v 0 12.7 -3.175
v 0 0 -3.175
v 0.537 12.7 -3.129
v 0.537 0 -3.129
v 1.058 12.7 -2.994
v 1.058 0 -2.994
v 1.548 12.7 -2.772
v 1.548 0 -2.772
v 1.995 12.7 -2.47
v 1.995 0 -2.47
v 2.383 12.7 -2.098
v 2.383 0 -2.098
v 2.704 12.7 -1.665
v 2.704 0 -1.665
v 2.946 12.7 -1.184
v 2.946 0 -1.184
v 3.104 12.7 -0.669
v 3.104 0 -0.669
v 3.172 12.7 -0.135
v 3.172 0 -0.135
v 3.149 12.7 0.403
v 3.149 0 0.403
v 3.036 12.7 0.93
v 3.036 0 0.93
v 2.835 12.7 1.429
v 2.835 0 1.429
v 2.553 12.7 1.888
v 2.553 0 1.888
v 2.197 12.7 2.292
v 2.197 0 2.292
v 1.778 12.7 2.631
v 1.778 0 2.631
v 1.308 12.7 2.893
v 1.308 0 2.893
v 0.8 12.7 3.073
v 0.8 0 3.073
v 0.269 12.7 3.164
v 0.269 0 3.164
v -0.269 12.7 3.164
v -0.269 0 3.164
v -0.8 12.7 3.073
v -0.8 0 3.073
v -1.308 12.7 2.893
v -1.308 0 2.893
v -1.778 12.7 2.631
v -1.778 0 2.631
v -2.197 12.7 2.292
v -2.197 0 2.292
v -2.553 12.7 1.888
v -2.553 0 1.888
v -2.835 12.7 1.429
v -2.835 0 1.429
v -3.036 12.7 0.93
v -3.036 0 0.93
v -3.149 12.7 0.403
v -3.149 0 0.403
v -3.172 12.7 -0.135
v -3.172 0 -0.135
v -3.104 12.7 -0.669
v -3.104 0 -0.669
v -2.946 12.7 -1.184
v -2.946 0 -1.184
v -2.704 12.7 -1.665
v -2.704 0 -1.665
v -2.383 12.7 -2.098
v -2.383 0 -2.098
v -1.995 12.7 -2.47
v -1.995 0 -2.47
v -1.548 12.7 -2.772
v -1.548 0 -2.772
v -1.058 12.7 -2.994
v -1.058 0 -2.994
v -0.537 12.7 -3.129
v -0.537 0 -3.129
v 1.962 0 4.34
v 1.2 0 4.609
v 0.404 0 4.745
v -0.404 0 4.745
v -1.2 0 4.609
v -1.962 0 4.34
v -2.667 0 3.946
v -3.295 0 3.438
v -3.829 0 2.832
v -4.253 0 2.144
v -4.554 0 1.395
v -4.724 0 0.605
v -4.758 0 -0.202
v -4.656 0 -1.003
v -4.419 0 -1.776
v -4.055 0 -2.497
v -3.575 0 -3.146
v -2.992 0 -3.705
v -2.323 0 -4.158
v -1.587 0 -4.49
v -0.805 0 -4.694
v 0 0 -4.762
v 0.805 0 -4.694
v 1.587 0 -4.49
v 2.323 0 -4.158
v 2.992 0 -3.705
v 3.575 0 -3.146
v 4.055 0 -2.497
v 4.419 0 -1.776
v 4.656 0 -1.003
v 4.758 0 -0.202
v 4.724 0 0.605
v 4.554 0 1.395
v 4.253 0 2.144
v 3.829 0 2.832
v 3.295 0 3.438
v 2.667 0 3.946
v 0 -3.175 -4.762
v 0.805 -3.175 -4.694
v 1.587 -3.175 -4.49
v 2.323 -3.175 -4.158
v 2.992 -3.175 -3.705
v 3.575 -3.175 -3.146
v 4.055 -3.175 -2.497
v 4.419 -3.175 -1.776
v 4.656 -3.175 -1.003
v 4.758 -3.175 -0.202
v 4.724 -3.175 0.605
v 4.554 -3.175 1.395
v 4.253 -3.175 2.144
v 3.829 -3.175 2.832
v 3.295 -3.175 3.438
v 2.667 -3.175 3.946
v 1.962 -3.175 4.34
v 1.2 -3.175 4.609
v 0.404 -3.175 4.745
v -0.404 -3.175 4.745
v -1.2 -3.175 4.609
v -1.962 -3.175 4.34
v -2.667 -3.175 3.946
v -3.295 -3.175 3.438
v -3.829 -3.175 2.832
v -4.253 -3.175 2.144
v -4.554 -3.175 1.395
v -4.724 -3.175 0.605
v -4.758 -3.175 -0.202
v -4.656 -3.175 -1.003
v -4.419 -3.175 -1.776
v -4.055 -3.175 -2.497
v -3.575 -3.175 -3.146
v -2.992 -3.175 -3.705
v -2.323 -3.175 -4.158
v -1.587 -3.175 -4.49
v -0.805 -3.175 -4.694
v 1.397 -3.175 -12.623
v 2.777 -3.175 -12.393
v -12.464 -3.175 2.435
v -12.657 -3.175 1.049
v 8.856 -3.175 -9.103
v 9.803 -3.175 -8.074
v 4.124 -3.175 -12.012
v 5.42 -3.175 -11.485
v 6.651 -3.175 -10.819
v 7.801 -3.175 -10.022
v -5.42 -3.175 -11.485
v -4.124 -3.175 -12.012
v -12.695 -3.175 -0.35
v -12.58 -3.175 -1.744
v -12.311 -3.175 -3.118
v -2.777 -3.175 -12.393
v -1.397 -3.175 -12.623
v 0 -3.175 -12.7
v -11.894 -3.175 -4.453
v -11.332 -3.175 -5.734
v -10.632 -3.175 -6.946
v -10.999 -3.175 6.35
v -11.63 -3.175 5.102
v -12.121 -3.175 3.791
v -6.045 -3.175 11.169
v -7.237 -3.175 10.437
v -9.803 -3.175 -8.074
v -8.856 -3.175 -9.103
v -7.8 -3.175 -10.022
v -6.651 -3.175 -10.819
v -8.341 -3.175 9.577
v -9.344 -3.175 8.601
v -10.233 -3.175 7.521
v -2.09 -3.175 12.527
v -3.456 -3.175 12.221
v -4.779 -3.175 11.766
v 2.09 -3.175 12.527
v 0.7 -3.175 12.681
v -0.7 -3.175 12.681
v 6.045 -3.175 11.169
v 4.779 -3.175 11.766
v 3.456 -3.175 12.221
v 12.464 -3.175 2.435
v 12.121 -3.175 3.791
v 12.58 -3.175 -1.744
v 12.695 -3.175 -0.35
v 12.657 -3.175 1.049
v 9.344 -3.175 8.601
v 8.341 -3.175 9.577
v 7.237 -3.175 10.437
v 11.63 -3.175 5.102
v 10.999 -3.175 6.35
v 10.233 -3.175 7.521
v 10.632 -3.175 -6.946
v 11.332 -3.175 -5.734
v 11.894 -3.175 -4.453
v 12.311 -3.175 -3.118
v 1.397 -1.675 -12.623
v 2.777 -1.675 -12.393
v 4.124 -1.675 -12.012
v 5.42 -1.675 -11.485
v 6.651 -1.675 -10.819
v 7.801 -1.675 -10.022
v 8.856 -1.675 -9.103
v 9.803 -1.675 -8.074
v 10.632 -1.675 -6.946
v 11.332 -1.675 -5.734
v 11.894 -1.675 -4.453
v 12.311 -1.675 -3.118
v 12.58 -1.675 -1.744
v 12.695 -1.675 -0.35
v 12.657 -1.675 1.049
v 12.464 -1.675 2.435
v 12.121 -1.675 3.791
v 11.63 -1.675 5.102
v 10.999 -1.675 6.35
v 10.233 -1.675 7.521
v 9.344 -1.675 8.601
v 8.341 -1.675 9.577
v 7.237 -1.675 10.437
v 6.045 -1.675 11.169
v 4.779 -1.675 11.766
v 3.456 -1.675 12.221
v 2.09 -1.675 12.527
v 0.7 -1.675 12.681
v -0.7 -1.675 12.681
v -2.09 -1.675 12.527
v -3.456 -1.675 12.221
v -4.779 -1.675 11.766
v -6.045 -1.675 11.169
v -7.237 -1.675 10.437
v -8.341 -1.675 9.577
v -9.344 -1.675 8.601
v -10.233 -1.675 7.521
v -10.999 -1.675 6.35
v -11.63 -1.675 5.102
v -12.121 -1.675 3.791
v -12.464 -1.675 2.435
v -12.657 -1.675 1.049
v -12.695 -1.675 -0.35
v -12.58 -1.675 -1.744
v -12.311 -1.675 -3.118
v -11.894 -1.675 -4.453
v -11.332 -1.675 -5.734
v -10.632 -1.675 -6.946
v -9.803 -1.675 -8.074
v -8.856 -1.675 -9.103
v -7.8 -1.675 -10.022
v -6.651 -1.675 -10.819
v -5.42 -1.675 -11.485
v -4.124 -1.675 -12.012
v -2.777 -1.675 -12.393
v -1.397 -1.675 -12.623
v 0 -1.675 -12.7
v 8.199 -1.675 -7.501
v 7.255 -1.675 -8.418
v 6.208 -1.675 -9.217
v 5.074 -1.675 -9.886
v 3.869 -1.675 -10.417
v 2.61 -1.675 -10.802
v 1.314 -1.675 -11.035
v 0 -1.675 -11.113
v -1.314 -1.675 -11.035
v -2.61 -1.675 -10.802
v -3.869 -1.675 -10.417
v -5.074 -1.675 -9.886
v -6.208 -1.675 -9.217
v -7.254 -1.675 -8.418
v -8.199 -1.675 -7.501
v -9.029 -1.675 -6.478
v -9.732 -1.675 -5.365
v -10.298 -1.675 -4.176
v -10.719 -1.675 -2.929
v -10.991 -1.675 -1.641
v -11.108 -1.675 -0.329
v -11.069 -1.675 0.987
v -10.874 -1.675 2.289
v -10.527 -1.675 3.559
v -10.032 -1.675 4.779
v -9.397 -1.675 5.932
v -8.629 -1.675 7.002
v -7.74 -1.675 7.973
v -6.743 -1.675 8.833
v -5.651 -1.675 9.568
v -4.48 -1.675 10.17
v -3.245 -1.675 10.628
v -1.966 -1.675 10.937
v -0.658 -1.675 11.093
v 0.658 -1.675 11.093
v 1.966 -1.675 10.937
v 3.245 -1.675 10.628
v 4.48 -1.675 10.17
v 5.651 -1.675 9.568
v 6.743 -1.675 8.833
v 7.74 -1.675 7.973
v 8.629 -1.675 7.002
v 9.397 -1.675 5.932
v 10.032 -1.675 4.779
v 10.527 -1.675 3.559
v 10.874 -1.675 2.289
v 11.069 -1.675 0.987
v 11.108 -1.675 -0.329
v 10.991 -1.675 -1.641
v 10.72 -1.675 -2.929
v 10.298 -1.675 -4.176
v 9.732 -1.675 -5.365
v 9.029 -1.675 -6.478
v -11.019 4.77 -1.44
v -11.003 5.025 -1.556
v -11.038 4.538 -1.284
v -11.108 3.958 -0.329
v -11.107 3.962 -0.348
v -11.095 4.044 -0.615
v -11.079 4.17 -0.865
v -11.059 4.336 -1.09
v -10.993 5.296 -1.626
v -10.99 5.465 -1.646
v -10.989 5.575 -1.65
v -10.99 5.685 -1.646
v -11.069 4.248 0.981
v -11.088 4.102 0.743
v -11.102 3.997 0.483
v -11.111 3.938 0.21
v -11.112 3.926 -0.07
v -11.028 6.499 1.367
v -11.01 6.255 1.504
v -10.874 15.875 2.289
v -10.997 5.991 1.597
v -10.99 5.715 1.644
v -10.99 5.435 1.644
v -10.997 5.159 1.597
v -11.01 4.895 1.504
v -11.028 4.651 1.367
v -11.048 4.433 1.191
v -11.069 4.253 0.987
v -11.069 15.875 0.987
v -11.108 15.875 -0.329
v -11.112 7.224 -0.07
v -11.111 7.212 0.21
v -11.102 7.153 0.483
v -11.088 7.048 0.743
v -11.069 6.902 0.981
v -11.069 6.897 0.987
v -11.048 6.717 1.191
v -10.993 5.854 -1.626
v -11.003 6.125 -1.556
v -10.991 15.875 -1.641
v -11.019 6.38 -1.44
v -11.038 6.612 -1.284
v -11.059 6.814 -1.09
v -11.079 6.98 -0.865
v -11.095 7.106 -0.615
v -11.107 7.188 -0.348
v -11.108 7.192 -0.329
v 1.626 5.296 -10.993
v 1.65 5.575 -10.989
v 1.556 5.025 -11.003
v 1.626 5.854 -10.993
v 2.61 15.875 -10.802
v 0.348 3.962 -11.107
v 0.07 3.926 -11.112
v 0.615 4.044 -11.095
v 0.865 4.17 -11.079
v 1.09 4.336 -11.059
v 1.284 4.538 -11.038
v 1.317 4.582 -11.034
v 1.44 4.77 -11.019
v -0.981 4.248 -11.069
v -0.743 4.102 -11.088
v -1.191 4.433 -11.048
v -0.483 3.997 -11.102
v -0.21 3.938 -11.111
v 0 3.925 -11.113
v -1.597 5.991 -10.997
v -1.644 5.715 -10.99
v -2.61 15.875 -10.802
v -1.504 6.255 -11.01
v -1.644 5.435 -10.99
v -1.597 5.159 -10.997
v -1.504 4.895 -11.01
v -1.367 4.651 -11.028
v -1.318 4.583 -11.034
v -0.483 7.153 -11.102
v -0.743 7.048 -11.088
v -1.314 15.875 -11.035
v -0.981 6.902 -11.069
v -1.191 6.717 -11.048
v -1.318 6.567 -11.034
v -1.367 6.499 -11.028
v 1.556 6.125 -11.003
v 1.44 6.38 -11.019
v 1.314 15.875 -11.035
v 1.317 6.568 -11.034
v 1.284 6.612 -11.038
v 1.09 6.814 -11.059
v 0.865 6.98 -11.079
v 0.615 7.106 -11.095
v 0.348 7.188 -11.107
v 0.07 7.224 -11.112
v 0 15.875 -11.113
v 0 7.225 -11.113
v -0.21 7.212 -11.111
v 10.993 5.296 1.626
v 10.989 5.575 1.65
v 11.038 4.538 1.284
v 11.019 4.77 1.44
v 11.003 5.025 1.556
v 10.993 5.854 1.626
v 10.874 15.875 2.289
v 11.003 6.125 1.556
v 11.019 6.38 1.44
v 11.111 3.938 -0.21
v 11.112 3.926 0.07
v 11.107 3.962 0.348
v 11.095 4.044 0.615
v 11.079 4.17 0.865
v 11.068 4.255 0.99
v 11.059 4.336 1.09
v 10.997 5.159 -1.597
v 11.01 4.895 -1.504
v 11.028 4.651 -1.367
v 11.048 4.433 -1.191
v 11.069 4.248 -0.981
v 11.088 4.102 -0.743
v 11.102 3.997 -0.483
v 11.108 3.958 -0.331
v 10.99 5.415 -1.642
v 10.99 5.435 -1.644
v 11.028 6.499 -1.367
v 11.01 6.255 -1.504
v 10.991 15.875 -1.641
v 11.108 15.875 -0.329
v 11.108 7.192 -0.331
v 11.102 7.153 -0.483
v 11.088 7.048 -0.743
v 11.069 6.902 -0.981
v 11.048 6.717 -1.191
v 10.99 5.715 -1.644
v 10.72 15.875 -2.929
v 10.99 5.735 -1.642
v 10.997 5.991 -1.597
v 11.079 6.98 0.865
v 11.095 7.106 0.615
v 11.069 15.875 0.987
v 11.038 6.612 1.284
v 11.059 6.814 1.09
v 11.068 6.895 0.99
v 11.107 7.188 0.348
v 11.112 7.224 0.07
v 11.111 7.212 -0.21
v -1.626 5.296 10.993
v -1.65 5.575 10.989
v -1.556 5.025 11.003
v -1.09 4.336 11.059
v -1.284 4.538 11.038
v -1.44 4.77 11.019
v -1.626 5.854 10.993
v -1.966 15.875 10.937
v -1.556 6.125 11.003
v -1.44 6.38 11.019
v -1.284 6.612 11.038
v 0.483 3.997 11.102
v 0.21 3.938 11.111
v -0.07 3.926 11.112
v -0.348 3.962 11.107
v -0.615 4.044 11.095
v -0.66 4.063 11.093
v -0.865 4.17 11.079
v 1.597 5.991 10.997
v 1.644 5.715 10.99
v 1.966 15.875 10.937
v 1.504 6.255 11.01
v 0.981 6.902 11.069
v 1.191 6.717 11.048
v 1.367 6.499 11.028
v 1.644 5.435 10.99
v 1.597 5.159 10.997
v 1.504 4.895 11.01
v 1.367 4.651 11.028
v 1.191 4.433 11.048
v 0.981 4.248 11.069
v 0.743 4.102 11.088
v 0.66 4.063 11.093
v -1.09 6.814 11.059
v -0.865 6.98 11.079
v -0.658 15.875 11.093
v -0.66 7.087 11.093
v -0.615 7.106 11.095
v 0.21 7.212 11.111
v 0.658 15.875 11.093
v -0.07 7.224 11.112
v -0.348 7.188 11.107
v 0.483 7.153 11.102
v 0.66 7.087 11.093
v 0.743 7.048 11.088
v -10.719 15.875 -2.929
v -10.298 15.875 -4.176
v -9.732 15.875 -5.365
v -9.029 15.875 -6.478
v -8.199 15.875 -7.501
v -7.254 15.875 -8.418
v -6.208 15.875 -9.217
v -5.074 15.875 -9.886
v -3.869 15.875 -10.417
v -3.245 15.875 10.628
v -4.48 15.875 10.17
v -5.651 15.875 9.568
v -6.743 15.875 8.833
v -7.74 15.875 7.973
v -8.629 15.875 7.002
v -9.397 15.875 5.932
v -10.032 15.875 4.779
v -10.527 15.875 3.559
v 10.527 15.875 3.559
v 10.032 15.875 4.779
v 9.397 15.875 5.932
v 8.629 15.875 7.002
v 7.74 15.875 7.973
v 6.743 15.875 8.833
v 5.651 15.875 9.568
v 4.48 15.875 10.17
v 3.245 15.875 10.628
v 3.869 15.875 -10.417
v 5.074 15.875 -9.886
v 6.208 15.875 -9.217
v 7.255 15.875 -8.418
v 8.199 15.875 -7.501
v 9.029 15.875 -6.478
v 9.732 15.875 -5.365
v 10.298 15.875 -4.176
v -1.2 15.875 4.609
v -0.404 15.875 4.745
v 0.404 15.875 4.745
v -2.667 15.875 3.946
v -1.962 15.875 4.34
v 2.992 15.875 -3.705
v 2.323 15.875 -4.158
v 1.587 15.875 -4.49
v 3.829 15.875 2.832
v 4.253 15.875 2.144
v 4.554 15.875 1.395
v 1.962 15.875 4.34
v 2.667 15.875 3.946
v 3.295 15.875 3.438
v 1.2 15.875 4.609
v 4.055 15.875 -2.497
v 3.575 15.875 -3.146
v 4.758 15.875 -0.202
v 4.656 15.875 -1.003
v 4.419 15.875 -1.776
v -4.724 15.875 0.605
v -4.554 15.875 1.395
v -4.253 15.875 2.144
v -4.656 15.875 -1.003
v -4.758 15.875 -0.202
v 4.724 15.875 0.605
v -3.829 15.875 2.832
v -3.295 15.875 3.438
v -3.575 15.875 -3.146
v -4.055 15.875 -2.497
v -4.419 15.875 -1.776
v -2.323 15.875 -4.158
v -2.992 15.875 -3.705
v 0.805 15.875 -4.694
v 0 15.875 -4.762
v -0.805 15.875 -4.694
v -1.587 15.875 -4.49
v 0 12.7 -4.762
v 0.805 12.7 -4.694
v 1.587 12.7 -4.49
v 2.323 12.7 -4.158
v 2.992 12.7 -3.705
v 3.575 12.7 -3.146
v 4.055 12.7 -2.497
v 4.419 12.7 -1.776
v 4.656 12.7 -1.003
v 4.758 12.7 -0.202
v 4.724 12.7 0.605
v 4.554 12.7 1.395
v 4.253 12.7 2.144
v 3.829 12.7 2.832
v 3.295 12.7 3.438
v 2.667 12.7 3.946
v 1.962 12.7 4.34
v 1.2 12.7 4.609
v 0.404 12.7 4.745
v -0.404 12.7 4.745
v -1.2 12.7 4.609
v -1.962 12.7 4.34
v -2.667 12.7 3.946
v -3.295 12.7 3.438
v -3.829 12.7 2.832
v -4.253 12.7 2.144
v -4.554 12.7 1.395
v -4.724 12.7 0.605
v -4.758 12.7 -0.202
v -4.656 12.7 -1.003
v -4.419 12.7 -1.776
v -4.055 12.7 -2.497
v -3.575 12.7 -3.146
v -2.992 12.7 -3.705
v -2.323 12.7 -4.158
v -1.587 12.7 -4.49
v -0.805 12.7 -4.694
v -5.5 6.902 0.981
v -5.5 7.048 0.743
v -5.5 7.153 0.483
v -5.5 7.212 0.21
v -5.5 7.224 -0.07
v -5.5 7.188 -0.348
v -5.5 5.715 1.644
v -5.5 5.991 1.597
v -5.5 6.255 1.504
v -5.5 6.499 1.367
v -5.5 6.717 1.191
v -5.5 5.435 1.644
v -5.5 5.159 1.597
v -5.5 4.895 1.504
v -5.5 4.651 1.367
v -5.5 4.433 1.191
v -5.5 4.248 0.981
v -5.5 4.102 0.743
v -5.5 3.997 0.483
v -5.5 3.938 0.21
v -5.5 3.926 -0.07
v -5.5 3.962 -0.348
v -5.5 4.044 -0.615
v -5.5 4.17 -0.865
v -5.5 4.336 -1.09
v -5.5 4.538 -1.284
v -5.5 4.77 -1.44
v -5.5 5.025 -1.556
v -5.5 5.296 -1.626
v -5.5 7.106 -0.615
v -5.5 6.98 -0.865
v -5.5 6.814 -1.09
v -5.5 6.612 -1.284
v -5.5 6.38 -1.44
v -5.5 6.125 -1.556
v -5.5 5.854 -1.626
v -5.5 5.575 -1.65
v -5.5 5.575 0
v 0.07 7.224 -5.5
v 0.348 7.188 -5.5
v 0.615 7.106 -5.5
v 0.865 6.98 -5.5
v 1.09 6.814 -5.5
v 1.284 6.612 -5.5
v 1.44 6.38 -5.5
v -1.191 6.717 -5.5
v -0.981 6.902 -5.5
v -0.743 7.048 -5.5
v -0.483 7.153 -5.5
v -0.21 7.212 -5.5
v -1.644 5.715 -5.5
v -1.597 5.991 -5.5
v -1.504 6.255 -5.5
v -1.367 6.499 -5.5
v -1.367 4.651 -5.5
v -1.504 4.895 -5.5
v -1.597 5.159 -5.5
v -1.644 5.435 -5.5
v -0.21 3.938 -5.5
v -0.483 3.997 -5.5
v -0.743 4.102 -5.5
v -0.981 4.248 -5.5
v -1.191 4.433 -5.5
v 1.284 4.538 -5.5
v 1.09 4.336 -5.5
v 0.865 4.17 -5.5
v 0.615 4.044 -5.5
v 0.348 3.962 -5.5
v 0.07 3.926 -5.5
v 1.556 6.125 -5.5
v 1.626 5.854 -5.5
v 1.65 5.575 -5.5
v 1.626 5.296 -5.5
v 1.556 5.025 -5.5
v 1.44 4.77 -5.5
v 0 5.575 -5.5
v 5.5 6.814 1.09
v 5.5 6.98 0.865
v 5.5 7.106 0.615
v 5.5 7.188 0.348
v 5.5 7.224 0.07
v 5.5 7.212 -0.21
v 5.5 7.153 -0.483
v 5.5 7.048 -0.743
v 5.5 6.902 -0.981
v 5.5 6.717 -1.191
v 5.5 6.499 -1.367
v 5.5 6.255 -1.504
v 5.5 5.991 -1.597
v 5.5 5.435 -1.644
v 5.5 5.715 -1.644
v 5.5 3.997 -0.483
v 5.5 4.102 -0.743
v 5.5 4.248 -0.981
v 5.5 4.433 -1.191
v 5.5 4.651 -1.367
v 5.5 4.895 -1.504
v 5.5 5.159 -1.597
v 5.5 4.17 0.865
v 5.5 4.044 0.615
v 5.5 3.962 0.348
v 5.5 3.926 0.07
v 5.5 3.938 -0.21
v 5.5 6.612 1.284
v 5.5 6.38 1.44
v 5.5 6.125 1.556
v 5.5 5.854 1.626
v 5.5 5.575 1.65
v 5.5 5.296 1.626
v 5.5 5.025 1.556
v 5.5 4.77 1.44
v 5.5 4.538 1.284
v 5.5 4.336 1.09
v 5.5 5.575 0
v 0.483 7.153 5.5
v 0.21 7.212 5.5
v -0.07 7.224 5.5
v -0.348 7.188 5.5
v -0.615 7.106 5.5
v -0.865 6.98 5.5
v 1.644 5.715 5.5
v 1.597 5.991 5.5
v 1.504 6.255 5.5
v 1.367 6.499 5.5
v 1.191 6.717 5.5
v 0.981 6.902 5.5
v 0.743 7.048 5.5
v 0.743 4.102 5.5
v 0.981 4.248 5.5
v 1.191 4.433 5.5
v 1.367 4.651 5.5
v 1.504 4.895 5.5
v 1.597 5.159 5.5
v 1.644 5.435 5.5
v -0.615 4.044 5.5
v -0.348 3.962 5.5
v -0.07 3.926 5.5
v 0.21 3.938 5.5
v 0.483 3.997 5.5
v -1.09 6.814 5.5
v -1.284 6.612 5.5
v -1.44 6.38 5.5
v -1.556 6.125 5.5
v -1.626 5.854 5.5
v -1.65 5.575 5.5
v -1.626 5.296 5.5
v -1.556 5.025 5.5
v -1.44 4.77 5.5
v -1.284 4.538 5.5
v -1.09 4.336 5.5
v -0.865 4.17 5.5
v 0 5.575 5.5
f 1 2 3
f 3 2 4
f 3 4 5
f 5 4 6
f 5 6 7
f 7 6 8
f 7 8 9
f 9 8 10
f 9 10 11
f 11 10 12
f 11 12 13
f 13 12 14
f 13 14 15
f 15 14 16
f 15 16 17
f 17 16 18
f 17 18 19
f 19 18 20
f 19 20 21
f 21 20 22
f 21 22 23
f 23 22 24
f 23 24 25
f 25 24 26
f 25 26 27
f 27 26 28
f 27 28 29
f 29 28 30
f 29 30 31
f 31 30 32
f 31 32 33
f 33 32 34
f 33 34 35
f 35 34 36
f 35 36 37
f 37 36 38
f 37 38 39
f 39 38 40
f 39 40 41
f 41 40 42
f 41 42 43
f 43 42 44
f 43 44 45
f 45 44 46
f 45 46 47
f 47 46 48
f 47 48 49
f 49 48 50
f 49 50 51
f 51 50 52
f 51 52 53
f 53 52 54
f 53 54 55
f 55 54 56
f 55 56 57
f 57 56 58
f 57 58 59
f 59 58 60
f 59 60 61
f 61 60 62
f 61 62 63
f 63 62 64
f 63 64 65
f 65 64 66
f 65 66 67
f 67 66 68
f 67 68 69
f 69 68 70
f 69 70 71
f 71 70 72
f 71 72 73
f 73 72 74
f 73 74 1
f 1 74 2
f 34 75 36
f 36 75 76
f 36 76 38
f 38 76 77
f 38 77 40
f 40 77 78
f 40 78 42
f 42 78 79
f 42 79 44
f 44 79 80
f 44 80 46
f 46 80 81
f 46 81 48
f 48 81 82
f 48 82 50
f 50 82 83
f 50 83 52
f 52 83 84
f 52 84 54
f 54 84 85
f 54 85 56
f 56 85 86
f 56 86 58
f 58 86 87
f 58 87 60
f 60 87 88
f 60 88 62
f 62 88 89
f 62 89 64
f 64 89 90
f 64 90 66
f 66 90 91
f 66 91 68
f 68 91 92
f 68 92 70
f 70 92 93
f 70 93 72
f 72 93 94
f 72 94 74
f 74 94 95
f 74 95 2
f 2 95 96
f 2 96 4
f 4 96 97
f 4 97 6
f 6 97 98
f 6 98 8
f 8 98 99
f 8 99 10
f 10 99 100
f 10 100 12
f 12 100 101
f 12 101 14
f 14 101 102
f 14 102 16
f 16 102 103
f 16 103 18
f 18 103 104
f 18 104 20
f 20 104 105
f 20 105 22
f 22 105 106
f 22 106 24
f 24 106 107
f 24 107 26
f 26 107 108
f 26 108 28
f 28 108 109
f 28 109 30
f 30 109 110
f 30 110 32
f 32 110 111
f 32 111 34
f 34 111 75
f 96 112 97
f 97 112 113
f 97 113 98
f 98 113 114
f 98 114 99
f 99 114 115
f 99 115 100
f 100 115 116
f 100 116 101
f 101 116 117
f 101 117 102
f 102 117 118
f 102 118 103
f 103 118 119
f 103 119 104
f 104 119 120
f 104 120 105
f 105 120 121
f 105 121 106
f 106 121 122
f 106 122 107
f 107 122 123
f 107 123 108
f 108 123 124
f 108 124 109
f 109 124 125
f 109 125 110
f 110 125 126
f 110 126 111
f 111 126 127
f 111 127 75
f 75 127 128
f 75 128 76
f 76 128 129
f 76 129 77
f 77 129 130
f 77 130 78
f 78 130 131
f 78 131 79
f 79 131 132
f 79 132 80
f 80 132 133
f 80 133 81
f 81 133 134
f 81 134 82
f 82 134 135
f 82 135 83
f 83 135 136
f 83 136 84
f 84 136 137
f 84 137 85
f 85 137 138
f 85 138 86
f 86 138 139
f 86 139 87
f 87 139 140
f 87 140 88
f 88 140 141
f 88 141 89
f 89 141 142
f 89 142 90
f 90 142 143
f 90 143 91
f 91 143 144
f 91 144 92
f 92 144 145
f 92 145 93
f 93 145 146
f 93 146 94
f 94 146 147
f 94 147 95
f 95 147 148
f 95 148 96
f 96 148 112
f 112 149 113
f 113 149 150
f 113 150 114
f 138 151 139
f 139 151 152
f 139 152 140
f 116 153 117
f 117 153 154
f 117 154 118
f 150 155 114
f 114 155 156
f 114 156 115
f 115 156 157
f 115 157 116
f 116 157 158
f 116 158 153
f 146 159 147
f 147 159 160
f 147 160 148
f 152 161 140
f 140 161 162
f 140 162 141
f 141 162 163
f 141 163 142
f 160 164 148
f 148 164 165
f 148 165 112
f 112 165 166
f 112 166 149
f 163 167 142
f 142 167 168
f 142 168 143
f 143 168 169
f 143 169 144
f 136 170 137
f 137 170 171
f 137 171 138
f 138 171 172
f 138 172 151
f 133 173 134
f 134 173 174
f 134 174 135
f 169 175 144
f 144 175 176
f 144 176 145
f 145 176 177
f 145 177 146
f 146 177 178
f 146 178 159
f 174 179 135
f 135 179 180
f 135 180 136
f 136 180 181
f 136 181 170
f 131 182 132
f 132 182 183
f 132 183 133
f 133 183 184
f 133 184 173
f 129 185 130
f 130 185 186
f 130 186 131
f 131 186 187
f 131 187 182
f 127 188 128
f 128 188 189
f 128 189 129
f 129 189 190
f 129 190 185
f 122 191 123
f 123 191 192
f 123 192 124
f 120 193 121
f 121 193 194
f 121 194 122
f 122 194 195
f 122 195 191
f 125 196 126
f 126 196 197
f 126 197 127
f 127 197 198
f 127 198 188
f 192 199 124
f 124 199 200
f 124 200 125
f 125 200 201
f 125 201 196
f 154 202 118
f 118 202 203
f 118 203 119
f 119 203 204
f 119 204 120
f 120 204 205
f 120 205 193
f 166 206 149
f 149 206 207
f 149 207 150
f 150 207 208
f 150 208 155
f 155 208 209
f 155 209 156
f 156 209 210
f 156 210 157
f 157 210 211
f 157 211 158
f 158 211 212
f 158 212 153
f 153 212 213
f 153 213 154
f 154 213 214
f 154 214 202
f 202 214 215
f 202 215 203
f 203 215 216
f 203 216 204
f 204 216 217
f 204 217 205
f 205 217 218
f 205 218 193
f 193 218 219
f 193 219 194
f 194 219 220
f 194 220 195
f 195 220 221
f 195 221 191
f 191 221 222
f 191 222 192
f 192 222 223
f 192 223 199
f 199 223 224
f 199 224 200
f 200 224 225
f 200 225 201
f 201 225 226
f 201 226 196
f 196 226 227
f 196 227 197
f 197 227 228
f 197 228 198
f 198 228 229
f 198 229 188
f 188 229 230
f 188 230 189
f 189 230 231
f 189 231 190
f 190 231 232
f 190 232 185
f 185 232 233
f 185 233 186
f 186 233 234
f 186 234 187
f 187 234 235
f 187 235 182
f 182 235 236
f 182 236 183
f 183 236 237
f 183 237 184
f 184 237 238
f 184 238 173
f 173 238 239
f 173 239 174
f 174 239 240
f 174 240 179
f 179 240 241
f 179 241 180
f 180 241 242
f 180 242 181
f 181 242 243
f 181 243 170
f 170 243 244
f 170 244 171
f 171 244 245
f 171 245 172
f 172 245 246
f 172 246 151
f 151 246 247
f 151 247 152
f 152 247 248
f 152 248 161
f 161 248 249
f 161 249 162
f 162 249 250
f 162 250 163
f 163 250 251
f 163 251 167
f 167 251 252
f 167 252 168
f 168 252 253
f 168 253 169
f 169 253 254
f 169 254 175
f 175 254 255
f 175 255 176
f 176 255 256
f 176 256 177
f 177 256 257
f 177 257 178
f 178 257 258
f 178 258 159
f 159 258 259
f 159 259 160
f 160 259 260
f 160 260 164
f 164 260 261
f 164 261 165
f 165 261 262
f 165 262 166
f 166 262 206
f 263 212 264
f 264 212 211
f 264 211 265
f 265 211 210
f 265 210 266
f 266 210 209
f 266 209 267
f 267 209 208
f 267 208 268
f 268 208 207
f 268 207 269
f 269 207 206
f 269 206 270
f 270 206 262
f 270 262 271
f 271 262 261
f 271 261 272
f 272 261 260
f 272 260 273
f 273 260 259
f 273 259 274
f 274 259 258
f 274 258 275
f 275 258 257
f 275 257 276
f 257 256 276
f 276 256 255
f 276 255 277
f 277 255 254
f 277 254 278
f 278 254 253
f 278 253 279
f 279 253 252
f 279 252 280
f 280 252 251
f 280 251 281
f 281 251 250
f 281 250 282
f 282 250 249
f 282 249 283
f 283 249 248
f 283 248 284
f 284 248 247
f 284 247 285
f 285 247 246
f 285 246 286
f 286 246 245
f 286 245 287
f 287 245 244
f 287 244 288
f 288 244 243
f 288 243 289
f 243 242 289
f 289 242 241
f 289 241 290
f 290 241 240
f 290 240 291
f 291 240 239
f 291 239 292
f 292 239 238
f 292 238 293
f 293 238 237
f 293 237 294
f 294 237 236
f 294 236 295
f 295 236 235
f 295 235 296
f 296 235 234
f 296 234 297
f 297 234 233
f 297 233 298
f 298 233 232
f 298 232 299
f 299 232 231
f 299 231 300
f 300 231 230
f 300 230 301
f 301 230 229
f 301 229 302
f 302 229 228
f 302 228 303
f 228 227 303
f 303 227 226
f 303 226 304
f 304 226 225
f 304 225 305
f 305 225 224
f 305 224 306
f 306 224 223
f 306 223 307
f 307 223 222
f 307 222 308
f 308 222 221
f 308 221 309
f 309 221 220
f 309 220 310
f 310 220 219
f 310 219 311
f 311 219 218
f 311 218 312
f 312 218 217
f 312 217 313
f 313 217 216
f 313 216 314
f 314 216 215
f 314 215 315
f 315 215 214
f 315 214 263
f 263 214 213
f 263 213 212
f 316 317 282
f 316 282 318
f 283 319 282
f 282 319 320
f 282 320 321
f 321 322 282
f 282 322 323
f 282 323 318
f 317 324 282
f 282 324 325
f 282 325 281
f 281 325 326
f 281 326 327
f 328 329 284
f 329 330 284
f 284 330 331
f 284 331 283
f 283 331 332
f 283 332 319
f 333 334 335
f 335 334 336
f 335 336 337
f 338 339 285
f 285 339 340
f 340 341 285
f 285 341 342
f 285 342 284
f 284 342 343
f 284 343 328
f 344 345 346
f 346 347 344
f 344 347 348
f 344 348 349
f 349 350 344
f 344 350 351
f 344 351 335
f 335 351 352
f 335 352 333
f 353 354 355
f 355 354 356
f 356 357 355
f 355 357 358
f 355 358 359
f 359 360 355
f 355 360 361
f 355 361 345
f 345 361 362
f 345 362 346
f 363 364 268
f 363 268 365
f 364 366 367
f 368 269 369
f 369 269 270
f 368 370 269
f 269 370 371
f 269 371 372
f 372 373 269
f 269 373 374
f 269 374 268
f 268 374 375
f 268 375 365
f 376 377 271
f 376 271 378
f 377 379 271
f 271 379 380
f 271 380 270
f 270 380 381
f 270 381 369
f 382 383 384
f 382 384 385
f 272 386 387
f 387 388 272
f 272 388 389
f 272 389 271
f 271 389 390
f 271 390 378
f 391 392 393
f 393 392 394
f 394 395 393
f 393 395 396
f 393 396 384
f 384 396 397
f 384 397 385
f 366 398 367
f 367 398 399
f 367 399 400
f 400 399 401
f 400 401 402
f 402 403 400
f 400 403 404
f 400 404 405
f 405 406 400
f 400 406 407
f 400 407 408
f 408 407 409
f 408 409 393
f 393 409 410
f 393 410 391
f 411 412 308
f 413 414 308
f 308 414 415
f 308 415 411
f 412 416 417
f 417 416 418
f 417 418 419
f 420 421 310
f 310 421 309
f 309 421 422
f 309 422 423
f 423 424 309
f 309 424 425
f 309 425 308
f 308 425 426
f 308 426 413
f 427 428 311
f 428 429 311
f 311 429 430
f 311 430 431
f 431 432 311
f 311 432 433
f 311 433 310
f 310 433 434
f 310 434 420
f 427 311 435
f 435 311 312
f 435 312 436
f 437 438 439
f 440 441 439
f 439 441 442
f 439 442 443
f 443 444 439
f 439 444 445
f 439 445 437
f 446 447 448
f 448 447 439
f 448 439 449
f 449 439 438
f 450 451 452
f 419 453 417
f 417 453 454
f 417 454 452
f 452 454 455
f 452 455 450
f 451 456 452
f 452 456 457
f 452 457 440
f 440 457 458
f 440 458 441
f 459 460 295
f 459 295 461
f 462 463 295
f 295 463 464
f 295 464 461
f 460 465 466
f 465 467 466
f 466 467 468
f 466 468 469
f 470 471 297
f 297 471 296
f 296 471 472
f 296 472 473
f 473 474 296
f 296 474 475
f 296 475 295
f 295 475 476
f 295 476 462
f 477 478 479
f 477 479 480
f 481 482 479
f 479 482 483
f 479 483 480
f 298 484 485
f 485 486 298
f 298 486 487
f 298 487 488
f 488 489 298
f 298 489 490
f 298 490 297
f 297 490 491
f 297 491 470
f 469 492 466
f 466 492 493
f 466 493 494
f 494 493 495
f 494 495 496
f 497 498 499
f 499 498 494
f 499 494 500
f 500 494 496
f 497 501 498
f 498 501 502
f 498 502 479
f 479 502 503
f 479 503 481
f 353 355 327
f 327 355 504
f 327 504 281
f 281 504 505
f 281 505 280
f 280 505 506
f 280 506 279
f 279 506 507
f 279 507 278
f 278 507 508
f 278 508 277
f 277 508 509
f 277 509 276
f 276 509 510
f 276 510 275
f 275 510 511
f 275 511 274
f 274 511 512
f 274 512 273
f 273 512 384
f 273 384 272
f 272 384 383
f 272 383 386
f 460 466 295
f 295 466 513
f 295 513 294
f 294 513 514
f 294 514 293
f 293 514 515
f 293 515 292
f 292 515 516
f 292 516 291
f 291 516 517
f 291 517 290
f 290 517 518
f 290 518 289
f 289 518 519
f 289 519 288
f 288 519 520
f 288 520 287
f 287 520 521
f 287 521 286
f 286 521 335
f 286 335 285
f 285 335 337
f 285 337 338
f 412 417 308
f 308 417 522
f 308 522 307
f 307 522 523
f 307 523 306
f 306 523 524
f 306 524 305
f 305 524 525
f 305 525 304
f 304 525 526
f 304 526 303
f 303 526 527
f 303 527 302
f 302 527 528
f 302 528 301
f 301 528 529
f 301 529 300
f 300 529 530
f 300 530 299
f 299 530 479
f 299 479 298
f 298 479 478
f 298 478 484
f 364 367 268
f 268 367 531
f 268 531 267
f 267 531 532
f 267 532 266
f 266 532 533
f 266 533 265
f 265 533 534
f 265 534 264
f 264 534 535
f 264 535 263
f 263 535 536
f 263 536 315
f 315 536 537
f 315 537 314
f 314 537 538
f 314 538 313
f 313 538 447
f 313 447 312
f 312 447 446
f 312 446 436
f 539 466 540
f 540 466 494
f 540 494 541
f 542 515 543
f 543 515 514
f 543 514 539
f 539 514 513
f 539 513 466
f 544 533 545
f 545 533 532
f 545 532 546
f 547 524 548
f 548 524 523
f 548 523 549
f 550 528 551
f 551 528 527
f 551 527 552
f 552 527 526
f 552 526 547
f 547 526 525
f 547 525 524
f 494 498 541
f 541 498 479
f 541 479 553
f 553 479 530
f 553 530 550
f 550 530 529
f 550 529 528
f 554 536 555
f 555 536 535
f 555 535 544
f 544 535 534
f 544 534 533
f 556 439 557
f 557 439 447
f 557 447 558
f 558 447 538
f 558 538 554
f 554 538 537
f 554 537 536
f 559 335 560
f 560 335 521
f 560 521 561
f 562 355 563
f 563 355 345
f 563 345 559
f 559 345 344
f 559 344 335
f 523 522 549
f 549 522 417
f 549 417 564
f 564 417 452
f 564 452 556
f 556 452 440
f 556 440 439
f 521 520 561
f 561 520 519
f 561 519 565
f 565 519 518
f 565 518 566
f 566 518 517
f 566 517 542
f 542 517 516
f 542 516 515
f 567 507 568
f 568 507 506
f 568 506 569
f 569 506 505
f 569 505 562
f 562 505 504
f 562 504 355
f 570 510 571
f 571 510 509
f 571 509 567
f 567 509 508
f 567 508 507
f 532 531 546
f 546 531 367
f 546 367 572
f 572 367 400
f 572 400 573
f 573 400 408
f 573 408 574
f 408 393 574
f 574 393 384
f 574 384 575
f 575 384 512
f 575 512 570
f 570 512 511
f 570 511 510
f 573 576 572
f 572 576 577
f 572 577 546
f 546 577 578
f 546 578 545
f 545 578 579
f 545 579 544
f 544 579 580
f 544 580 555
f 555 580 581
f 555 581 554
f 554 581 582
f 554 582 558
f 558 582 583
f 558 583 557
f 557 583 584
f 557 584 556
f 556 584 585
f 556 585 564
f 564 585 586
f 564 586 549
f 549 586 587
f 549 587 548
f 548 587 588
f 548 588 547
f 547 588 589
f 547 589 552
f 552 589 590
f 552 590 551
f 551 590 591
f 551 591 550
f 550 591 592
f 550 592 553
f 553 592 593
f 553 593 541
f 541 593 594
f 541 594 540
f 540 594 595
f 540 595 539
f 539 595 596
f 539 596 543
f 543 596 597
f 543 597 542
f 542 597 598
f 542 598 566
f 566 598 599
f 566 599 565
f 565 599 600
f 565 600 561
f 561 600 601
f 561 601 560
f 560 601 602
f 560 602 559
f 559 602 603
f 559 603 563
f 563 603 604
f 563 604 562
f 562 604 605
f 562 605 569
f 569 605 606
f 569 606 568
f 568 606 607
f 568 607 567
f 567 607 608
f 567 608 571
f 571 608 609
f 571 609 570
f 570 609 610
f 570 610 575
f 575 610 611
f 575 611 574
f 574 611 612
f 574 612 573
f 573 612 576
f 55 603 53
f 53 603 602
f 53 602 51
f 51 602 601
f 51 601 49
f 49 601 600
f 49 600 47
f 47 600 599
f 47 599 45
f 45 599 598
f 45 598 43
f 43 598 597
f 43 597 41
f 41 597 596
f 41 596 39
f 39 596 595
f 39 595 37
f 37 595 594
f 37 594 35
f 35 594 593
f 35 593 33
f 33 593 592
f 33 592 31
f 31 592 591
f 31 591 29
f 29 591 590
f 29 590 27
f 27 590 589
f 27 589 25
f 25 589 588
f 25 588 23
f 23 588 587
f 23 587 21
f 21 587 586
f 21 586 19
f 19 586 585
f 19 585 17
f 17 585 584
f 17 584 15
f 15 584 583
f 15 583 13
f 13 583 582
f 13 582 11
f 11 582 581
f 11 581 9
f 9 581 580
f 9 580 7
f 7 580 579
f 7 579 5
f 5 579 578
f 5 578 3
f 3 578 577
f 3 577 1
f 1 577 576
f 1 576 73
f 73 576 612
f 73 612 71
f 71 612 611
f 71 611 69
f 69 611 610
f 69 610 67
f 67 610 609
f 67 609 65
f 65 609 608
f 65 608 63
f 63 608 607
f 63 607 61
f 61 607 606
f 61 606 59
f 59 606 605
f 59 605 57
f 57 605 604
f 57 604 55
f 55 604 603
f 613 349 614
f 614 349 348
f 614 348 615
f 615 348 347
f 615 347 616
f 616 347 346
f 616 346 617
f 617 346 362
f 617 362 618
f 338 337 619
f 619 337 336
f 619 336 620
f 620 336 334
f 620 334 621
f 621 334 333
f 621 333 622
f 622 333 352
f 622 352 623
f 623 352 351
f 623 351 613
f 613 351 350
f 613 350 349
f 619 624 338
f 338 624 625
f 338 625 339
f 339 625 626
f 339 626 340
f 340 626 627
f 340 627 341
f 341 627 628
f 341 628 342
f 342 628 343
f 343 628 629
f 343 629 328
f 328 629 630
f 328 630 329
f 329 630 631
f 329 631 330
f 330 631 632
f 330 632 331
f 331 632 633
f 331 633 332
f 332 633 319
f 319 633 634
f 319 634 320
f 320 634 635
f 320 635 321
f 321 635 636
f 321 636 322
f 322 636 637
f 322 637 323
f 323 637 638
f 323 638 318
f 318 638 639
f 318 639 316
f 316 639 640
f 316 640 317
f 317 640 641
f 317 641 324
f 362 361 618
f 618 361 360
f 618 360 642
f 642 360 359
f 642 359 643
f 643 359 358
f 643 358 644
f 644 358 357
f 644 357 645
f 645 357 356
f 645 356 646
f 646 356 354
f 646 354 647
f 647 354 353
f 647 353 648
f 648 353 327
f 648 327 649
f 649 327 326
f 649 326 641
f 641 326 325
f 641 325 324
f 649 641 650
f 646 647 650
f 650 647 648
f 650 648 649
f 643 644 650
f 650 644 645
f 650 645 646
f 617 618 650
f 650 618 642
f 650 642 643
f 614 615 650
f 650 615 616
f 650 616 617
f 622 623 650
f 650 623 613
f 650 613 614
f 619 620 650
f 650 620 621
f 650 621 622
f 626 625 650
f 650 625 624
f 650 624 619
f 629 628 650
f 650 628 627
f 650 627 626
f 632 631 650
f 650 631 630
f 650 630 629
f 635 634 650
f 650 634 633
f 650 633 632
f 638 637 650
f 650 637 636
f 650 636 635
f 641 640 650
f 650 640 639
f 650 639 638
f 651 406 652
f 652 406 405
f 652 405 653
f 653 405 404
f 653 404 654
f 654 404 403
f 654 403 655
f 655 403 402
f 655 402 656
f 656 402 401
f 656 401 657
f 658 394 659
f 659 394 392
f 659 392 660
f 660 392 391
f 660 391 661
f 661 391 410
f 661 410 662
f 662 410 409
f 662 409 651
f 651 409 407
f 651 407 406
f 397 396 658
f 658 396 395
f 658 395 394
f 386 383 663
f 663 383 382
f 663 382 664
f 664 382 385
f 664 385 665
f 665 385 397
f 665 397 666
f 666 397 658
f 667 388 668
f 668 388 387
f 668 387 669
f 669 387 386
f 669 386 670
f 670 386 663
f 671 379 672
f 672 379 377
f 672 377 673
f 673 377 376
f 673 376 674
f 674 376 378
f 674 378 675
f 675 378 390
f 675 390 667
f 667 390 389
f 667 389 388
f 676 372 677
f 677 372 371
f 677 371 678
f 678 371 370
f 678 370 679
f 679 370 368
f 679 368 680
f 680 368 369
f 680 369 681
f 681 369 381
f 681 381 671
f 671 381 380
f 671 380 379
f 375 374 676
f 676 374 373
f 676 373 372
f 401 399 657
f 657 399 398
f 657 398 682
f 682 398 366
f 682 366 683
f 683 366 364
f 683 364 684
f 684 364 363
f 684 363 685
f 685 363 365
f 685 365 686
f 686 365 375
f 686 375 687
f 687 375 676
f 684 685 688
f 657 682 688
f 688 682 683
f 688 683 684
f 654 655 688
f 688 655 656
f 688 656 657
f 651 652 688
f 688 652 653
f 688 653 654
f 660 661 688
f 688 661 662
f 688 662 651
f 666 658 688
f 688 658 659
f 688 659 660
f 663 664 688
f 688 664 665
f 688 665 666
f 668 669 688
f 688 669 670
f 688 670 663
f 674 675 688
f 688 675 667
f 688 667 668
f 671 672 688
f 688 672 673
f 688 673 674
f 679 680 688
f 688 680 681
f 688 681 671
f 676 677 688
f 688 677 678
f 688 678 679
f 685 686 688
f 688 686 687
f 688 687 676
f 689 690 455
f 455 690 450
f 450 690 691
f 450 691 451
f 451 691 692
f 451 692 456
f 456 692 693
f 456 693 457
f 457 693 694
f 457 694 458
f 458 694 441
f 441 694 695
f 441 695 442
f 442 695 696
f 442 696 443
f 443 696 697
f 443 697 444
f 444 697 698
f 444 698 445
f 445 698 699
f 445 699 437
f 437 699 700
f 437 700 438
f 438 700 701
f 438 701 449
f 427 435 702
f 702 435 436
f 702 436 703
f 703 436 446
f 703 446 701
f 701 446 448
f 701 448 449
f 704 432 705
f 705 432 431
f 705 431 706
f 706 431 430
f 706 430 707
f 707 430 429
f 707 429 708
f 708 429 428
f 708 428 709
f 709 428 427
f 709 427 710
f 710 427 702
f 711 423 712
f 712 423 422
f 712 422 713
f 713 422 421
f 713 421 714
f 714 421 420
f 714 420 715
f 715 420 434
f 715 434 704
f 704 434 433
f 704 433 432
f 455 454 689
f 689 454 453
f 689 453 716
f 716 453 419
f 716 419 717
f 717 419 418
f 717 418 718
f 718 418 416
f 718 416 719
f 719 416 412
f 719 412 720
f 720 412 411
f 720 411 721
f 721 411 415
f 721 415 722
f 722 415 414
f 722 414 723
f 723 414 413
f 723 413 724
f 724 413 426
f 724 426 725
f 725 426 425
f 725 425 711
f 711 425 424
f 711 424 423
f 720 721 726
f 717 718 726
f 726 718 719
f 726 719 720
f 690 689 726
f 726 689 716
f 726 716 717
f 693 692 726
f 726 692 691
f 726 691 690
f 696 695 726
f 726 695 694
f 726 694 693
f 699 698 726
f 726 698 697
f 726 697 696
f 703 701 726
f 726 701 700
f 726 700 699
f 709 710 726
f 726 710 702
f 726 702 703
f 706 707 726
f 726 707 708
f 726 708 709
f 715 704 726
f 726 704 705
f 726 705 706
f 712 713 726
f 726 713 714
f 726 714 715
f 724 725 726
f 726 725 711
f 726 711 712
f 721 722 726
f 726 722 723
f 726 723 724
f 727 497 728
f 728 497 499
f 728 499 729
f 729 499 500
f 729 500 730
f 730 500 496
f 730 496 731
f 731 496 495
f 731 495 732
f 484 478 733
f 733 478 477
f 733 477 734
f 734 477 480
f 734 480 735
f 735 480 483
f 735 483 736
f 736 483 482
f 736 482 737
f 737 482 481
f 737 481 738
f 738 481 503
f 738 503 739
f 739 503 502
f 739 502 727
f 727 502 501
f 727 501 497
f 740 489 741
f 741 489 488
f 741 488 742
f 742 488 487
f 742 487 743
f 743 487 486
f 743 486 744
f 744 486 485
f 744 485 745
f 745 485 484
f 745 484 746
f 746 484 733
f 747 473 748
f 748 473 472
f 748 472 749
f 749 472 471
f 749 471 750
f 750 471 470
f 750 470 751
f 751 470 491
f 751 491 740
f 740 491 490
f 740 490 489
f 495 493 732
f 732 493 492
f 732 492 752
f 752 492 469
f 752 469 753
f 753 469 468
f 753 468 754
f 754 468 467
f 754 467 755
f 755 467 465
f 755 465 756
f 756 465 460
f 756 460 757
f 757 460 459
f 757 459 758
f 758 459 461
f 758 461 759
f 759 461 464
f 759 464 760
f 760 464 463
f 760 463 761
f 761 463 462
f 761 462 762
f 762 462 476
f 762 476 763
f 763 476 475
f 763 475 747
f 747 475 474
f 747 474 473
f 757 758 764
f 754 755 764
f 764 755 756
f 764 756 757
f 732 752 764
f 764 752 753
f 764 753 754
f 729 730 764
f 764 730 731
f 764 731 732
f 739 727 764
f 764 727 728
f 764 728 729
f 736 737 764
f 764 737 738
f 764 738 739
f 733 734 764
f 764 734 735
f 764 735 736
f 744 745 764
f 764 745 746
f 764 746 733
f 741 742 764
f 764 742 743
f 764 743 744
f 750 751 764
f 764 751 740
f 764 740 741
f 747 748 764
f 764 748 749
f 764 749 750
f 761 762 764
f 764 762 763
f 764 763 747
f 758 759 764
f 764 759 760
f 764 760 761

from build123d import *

# Parameters (mm, degrees)
CUT_EXTRUDE1_REACH      = 31.471
CUT_EXTRUDE1_END_RADIUS = 11.1125
CUT_EXTRUDE1_START      = -5.5
SKETCH2_R               = 1.65
CIRPATTERN1_COUNT       = 4


with BuildPart() as part:
    # Sketch1 → Revolve1 (revolve)
    with BuildSketch(Plane(origin=(0, 0, 0), x_dir=(0, 0, -1), z_dir=(1, 0, 0)), mode=Mode.PRIVATE) as revolve1_sk:
        Polygon((-3.175, 0), (-4.7625, 0), (-4.7625, -3.175), (-12.7, -3.175), (-12.7, -1.675), (-11.1125, -1.675), (-11.1125, 15.875), (-4.7625, 15.875), (-4.7625, 12.7), (-3.175, 12.7), align=None)
    revolve(revolve1_sk.sketch.rotate(Axis((0, -1000, 0), (0, 1, 0)), 180), axis=Axis((0, -1000, 0), (0, 1, 0)))

    # Cut-Extrude1: up to this cylinder (the profile starts inside it)
    cut_extrude1_end = Plane(origin=(0, 5.575, 0), z_dir=(0, -1, 0)) * Cylinder(CUT_EXTRUDE1_END_RADIUS, 86.167, mode=Mode.PRIVATE)
    # Sketch2 → Cut-Extrude1 (cut, up to the surface)
    with BuildSketch(Plane(origin=(0, 0, 0), x_dir=(0, 0, -1), z_dir=(1, 0, 0)).offset(CUT_EXTRUDE1_START), mode=Mode.PRIVATE) as cut_extrude1_sk1:
        with Locations((0, 5.575)):
            Circle(SKETCH2_R)
    cut_extrude1_tool1 = extrude(cut_extrude1_sk1.sketch, amount=-CUT_EXTRUDE1_REACH, mode=Mode.PRIVATE) & cut_extrude1_end
    cut_extrude1 = cut_extrude1_tool1.solids().sort_by_distance((-5.5, 5.575, 0))[0]
    add(cut_extrude1, mode=Mode.SUBTRACT)

    # CirPattern1: Cut-Extrude1 ×4 about axis
    cirpattern1_axis = Axis((0, 0, 0), (0, 1, 0))
    for i in range(1, CIRPATTERN1_COUNT):
        add(cut_extrude1.rotate(cirpattern1_axis, i * 360 / CIRPATTERN1_COUNT), mode=Mode.SUBTRACT)


solid = part.part
